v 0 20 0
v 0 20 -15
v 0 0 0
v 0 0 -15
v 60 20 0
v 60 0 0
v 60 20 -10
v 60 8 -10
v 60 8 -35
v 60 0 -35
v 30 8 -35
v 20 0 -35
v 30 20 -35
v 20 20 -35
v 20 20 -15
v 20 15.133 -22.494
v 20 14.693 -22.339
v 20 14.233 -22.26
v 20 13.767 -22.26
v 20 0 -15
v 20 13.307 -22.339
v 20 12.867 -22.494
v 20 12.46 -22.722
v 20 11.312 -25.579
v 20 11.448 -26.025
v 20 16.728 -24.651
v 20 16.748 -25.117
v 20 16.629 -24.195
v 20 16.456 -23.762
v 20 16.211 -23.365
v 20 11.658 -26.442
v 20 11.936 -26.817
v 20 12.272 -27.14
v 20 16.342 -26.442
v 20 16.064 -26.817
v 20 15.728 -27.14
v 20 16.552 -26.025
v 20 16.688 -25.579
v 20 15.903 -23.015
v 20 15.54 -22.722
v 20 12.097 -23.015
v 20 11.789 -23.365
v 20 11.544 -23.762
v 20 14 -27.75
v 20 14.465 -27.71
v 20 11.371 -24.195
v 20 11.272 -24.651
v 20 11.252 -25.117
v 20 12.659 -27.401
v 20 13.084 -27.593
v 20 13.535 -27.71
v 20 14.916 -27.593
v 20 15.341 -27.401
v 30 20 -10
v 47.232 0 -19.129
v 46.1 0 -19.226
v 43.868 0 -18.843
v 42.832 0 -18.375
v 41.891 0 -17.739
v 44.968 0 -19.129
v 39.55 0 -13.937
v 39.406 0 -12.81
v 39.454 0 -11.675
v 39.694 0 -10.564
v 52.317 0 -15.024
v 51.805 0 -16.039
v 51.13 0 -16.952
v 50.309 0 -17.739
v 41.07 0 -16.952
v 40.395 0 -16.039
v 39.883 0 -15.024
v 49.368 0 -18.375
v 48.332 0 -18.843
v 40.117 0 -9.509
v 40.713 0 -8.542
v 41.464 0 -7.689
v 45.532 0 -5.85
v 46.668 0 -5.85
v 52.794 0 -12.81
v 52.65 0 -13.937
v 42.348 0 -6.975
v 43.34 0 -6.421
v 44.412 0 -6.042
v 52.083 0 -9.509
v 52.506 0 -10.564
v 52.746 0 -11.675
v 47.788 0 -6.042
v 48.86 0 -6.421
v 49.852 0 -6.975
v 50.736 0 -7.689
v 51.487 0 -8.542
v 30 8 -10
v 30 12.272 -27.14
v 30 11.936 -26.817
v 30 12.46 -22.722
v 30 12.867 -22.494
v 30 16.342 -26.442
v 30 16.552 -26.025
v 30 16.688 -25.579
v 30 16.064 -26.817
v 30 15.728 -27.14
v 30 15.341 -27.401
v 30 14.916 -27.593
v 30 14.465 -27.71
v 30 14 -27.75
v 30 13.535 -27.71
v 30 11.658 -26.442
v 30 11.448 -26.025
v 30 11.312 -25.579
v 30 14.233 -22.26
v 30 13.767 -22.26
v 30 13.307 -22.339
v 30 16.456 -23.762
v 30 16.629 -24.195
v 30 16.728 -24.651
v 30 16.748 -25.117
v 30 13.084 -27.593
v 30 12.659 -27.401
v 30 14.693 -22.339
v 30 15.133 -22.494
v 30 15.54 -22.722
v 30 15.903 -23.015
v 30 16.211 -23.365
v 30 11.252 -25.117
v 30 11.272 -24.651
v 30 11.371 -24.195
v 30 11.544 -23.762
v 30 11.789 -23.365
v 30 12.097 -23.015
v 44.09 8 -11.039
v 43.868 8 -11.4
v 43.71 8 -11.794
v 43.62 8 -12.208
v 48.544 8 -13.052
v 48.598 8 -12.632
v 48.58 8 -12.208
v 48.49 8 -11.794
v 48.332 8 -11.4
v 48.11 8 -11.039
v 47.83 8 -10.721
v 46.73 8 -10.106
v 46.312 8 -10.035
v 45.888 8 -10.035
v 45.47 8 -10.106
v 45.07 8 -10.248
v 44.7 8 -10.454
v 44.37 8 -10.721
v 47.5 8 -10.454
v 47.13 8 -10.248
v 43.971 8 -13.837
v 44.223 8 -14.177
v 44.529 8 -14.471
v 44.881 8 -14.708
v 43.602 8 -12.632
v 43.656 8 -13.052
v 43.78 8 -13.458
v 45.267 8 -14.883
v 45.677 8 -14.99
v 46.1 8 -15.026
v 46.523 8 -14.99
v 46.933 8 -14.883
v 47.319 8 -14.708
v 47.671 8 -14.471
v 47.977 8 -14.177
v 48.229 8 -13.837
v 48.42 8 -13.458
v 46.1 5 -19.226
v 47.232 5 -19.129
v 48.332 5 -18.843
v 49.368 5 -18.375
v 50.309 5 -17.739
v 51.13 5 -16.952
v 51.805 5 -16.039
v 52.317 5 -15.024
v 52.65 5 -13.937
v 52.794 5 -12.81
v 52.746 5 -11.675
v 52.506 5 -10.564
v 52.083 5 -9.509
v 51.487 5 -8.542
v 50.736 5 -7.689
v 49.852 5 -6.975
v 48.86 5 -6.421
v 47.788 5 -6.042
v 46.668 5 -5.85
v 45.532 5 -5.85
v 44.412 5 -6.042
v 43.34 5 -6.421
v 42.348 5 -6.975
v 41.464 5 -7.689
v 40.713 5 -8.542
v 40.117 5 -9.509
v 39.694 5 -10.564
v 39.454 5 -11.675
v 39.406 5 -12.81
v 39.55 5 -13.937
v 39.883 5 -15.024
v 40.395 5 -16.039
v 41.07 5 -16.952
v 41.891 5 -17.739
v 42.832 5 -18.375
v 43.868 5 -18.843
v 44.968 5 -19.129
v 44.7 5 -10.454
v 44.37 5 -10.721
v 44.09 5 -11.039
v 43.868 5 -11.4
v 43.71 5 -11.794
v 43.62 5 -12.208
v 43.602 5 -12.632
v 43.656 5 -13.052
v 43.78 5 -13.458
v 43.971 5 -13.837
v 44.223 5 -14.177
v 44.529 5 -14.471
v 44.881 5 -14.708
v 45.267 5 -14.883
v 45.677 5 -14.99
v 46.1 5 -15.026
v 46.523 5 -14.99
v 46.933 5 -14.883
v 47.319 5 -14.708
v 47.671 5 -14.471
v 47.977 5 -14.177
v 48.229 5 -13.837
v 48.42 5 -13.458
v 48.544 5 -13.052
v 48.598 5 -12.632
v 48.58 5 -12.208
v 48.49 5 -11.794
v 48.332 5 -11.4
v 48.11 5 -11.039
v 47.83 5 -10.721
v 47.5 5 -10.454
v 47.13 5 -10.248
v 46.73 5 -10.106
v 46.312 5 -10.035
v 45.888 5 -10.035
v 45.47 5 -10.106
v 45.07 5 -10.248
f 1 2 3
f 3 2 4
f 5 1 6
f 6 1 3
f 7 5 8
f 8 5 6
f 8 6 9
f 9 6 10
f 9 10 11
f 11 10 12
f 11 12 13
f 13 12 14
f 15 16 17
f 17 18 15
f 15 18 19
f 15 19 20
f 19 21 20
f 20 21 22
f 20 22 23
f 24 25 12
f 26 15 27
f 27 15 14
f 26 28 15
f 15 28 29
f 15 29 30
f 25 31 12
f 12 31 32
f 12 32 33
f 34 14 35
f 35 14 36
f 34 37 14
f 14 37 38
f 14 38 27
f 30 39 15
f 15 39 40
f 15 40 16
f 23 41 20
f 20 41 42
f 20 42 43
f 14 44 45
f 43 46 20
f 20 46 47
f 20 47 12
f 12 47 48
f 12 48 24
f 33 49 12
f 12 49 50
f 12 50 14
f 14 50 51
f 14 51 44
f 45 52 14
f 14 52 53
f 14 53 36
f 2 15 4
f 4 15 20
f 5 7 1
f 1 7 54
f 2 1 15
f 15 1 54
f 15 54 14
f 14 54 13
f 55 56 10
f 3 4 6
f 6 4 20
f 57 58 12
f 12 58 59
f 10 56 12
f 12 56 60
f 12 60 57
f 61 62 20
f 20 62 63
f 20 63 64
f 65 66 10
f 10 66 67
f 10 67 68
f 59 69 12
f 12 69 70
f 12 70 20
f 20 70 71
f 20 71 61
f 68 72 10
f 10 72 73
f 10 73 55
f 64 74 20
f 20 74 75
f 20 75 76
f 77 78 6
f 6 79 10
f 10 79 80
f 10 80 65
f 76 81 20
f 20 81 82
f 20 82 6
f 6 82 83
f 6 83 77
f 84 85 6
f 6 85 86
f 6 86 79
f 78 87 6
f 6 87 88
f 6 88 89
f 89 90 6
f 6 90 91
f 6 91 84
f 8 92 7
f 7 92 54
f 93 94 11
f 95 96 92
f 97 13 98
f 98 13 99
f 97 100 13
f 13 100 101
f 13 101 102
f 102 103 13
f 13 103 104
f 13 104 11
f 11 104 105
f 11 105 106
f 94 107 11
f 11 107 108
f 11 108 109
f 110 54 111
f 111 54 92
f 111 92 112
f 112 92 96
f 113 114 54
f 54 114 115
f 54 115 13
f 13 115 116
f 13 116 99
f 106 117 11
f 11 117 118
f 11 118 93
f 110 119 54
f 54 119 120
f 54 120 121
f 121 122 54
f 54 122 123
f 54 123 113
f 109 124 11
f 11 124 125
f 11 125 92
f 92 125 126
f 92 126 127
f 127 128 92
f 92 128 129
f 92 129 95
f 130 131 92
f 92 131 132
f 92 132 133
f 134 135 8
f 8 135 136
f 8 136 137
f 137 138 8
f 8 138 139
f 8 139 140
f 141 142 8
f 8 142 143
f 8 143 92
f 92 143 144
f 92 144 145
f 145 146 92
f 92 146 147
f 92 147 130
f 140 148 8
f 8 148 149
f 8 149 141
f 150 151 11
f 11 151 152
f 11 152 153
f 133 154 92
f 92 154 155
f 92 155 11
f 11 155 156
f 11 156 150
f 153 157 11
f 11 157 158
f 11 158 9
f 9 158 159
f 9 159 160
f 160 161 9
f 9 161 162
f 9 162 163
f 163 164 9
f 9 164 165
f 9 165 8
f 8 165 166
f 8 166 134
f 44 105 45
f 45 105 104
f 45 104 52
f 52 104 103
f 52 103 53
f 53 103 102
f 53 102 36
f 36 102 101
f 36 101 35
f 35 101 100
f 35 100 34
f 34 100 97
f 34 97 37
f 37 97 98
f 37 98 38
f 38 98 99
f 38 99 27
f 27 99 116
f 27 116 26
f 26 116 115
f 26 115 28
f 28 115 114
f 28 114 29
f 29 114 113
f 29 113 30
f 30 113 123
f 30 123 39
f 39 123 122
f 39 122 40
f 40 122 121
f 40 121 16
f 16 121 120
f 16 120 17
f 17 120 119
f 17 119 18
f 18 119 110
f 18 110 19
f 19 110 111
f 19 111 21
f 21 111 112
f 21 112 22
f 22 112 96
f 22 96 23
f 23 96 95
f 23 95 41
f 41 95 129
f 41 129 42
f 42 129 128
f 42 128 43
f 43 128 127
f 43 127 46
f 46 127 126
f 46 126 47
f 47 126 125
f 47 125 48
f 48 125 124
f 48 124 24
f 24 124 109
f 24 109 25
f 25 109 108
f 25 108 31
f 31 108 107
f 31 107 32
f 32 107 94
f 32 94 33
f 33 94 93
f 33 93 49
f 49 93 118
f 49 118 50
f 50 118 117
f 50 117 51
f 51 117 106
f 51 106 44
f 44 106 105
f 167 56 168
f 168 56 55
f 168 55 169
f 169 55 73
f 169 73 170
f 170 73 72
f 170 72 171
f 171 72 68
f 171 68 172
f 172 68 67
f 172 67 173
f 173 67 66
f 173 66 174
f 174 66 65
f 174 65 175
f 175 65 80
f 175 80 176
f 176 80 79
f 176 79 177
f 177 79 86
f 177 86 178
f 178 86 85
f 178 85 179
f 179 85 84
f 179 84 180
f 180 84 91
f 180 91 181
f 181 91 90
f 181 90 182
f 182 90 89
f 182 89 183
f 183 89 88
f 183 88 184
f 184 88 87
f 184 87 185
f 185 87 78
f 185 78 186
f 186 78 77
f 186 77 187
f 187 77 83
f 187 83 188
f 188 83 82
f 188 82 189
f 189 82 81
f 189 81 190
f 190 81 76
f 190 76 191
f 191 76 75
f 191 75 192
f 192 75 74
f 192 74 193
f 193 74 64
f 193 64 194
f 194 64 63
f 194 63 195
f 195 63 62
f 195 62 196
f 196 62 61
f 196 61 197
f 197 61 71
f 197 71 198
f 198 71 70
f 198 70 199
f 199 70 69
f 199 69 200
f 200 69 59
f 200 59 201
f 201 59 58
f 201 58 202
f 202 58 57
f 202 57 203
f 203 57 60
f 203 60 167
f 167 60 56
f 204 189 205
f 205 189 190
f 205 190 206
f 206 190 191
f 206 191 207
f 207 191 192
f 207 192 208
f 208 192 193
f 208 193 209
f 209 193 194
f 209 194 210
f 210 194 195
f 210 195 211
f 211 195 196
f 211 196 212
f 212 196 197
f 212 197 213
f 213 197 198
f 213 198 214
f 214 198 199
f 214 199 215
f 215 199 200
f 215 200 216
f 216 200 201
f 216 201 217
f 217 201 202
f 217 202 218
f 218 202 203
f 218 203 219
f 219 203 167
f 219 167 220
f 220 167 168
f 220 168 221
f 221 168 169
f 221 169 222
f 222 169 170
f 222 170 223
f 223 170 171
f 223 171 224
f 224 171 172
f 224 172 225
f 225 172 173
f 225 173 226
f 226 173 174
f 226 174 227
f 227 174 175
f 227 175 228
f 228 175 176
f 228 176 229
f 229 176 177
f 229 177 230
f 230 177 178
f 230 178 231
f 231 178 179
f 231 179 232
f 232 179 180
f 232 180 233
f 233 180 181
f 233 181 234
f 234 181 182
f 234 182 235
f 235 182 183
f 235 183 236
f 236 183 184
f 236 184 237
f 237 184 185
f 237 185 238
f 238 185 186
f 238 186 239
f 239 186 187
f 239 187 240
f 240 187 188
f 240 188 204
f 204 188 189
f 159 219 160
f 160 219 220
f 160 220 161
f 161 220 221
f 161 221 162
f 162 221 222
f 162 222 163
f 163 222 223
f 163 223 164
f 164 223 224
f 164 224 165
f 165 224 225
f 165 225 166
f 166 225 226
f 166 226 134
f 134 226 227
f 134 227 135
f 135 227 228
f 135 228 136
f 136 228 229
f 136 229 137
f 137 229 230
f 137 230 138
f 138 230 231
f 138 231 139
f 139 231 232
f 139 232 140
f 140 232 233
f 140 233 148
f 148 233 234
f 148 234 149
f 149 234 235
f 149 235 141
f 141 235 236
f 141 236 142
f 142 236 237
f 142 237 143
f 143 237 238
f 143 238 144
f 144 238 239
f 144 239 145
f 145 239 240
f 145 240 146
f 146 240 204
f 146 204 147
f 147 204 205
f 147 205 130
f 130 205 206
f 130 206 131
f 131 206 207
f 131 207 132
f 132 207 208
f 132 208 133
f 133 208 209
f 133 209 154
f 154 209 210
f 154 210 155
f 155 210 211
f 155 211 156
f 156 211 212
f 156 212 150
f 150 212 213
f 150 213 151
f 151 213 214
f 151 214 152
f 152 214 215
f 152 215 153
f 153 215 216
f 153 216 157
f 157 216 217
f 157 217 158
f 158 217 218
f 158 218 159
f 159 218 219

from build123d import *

# Parameters (mm, degrees)
BOSS_EXTRUDE1_DEPTH = 20
SKETCH2_W           = 30
SKETCH2_H           = 25
CUT_EXTRUDE1_DEPTH  = 12
SKETCH5_R           = 2.75
CUT_EXTRUDE4_DEPTH  = 31
SKETCH6_R           = 6.7
CUT_EXTRUDE5_DEPTH  = 5
SKETCH7_R           = 2.5
CUT_EXTRUDE6_DEPTH  = 16


with BuildPart() as part:
    # Sketch1 → Boss-Extrude1 (new body)
    with BuildSketch(Plane(origin=(0, 0, 0), x_dir=(1, 0, 0), z_dir=(0, 1, 0))):
        Polygon((0, 0), (60, 0), (60, 35), (20, 35), (20, 15), (0, 15), align=None)
    extrude(amount=BOSS_EXTRUDE1_DEPTH)

    # Sketch2 → Cut-Extrude1 (cut)
    with BuildSketch(Plane(origin=(0, 20, 0), x_dir=(1, 0, 0), z_dir=(0, 1, 0))):
        with Locations((45, 22.5)):
            Rectangle(SKETCH2_W, SKETCH2_H)
    extrude(amount=-CUT_EXTRUDE1_DEPTH, mode=Mode.SUBTRACT)

    # Sketch5 → Cut-Extrude4 (cut, through all)
    with BuildSketch(Plane(origin=(30, 0, 0), x_dir=(0, 0, -1), z_dir=(1, 0, 0))):
        with Locations((25, 14)):
            Circle(SKETCH5_R)
    extrude(amount=-CUT_EXTRUDE4_DEPTH, mode=Mode.SUBTRACT)

    # Sketch6 → Cut-Extrude5 (cut)
    with BuildSketch(Plane.XZ):
        with Locations((46.1, -12.525762493)):
            Circle(SKETCH6_R)
    extrude(amount=-CUT_EXTRUDE5_DEPTH, mode=Mode.SUBTRACT)

    # Sketch7 → Cut-Extrude6 (cut, through all)
    with BuildSketch(Plane.XZ.offset(-5)):
        with Locations((46.1, -12.525762493)):
            Circle(SKETCH7_R)
    extrude(amount=-CUT_EXTRUDE6_DEPTH, mode=Mode.SUBTRACT)


solid = part.part
